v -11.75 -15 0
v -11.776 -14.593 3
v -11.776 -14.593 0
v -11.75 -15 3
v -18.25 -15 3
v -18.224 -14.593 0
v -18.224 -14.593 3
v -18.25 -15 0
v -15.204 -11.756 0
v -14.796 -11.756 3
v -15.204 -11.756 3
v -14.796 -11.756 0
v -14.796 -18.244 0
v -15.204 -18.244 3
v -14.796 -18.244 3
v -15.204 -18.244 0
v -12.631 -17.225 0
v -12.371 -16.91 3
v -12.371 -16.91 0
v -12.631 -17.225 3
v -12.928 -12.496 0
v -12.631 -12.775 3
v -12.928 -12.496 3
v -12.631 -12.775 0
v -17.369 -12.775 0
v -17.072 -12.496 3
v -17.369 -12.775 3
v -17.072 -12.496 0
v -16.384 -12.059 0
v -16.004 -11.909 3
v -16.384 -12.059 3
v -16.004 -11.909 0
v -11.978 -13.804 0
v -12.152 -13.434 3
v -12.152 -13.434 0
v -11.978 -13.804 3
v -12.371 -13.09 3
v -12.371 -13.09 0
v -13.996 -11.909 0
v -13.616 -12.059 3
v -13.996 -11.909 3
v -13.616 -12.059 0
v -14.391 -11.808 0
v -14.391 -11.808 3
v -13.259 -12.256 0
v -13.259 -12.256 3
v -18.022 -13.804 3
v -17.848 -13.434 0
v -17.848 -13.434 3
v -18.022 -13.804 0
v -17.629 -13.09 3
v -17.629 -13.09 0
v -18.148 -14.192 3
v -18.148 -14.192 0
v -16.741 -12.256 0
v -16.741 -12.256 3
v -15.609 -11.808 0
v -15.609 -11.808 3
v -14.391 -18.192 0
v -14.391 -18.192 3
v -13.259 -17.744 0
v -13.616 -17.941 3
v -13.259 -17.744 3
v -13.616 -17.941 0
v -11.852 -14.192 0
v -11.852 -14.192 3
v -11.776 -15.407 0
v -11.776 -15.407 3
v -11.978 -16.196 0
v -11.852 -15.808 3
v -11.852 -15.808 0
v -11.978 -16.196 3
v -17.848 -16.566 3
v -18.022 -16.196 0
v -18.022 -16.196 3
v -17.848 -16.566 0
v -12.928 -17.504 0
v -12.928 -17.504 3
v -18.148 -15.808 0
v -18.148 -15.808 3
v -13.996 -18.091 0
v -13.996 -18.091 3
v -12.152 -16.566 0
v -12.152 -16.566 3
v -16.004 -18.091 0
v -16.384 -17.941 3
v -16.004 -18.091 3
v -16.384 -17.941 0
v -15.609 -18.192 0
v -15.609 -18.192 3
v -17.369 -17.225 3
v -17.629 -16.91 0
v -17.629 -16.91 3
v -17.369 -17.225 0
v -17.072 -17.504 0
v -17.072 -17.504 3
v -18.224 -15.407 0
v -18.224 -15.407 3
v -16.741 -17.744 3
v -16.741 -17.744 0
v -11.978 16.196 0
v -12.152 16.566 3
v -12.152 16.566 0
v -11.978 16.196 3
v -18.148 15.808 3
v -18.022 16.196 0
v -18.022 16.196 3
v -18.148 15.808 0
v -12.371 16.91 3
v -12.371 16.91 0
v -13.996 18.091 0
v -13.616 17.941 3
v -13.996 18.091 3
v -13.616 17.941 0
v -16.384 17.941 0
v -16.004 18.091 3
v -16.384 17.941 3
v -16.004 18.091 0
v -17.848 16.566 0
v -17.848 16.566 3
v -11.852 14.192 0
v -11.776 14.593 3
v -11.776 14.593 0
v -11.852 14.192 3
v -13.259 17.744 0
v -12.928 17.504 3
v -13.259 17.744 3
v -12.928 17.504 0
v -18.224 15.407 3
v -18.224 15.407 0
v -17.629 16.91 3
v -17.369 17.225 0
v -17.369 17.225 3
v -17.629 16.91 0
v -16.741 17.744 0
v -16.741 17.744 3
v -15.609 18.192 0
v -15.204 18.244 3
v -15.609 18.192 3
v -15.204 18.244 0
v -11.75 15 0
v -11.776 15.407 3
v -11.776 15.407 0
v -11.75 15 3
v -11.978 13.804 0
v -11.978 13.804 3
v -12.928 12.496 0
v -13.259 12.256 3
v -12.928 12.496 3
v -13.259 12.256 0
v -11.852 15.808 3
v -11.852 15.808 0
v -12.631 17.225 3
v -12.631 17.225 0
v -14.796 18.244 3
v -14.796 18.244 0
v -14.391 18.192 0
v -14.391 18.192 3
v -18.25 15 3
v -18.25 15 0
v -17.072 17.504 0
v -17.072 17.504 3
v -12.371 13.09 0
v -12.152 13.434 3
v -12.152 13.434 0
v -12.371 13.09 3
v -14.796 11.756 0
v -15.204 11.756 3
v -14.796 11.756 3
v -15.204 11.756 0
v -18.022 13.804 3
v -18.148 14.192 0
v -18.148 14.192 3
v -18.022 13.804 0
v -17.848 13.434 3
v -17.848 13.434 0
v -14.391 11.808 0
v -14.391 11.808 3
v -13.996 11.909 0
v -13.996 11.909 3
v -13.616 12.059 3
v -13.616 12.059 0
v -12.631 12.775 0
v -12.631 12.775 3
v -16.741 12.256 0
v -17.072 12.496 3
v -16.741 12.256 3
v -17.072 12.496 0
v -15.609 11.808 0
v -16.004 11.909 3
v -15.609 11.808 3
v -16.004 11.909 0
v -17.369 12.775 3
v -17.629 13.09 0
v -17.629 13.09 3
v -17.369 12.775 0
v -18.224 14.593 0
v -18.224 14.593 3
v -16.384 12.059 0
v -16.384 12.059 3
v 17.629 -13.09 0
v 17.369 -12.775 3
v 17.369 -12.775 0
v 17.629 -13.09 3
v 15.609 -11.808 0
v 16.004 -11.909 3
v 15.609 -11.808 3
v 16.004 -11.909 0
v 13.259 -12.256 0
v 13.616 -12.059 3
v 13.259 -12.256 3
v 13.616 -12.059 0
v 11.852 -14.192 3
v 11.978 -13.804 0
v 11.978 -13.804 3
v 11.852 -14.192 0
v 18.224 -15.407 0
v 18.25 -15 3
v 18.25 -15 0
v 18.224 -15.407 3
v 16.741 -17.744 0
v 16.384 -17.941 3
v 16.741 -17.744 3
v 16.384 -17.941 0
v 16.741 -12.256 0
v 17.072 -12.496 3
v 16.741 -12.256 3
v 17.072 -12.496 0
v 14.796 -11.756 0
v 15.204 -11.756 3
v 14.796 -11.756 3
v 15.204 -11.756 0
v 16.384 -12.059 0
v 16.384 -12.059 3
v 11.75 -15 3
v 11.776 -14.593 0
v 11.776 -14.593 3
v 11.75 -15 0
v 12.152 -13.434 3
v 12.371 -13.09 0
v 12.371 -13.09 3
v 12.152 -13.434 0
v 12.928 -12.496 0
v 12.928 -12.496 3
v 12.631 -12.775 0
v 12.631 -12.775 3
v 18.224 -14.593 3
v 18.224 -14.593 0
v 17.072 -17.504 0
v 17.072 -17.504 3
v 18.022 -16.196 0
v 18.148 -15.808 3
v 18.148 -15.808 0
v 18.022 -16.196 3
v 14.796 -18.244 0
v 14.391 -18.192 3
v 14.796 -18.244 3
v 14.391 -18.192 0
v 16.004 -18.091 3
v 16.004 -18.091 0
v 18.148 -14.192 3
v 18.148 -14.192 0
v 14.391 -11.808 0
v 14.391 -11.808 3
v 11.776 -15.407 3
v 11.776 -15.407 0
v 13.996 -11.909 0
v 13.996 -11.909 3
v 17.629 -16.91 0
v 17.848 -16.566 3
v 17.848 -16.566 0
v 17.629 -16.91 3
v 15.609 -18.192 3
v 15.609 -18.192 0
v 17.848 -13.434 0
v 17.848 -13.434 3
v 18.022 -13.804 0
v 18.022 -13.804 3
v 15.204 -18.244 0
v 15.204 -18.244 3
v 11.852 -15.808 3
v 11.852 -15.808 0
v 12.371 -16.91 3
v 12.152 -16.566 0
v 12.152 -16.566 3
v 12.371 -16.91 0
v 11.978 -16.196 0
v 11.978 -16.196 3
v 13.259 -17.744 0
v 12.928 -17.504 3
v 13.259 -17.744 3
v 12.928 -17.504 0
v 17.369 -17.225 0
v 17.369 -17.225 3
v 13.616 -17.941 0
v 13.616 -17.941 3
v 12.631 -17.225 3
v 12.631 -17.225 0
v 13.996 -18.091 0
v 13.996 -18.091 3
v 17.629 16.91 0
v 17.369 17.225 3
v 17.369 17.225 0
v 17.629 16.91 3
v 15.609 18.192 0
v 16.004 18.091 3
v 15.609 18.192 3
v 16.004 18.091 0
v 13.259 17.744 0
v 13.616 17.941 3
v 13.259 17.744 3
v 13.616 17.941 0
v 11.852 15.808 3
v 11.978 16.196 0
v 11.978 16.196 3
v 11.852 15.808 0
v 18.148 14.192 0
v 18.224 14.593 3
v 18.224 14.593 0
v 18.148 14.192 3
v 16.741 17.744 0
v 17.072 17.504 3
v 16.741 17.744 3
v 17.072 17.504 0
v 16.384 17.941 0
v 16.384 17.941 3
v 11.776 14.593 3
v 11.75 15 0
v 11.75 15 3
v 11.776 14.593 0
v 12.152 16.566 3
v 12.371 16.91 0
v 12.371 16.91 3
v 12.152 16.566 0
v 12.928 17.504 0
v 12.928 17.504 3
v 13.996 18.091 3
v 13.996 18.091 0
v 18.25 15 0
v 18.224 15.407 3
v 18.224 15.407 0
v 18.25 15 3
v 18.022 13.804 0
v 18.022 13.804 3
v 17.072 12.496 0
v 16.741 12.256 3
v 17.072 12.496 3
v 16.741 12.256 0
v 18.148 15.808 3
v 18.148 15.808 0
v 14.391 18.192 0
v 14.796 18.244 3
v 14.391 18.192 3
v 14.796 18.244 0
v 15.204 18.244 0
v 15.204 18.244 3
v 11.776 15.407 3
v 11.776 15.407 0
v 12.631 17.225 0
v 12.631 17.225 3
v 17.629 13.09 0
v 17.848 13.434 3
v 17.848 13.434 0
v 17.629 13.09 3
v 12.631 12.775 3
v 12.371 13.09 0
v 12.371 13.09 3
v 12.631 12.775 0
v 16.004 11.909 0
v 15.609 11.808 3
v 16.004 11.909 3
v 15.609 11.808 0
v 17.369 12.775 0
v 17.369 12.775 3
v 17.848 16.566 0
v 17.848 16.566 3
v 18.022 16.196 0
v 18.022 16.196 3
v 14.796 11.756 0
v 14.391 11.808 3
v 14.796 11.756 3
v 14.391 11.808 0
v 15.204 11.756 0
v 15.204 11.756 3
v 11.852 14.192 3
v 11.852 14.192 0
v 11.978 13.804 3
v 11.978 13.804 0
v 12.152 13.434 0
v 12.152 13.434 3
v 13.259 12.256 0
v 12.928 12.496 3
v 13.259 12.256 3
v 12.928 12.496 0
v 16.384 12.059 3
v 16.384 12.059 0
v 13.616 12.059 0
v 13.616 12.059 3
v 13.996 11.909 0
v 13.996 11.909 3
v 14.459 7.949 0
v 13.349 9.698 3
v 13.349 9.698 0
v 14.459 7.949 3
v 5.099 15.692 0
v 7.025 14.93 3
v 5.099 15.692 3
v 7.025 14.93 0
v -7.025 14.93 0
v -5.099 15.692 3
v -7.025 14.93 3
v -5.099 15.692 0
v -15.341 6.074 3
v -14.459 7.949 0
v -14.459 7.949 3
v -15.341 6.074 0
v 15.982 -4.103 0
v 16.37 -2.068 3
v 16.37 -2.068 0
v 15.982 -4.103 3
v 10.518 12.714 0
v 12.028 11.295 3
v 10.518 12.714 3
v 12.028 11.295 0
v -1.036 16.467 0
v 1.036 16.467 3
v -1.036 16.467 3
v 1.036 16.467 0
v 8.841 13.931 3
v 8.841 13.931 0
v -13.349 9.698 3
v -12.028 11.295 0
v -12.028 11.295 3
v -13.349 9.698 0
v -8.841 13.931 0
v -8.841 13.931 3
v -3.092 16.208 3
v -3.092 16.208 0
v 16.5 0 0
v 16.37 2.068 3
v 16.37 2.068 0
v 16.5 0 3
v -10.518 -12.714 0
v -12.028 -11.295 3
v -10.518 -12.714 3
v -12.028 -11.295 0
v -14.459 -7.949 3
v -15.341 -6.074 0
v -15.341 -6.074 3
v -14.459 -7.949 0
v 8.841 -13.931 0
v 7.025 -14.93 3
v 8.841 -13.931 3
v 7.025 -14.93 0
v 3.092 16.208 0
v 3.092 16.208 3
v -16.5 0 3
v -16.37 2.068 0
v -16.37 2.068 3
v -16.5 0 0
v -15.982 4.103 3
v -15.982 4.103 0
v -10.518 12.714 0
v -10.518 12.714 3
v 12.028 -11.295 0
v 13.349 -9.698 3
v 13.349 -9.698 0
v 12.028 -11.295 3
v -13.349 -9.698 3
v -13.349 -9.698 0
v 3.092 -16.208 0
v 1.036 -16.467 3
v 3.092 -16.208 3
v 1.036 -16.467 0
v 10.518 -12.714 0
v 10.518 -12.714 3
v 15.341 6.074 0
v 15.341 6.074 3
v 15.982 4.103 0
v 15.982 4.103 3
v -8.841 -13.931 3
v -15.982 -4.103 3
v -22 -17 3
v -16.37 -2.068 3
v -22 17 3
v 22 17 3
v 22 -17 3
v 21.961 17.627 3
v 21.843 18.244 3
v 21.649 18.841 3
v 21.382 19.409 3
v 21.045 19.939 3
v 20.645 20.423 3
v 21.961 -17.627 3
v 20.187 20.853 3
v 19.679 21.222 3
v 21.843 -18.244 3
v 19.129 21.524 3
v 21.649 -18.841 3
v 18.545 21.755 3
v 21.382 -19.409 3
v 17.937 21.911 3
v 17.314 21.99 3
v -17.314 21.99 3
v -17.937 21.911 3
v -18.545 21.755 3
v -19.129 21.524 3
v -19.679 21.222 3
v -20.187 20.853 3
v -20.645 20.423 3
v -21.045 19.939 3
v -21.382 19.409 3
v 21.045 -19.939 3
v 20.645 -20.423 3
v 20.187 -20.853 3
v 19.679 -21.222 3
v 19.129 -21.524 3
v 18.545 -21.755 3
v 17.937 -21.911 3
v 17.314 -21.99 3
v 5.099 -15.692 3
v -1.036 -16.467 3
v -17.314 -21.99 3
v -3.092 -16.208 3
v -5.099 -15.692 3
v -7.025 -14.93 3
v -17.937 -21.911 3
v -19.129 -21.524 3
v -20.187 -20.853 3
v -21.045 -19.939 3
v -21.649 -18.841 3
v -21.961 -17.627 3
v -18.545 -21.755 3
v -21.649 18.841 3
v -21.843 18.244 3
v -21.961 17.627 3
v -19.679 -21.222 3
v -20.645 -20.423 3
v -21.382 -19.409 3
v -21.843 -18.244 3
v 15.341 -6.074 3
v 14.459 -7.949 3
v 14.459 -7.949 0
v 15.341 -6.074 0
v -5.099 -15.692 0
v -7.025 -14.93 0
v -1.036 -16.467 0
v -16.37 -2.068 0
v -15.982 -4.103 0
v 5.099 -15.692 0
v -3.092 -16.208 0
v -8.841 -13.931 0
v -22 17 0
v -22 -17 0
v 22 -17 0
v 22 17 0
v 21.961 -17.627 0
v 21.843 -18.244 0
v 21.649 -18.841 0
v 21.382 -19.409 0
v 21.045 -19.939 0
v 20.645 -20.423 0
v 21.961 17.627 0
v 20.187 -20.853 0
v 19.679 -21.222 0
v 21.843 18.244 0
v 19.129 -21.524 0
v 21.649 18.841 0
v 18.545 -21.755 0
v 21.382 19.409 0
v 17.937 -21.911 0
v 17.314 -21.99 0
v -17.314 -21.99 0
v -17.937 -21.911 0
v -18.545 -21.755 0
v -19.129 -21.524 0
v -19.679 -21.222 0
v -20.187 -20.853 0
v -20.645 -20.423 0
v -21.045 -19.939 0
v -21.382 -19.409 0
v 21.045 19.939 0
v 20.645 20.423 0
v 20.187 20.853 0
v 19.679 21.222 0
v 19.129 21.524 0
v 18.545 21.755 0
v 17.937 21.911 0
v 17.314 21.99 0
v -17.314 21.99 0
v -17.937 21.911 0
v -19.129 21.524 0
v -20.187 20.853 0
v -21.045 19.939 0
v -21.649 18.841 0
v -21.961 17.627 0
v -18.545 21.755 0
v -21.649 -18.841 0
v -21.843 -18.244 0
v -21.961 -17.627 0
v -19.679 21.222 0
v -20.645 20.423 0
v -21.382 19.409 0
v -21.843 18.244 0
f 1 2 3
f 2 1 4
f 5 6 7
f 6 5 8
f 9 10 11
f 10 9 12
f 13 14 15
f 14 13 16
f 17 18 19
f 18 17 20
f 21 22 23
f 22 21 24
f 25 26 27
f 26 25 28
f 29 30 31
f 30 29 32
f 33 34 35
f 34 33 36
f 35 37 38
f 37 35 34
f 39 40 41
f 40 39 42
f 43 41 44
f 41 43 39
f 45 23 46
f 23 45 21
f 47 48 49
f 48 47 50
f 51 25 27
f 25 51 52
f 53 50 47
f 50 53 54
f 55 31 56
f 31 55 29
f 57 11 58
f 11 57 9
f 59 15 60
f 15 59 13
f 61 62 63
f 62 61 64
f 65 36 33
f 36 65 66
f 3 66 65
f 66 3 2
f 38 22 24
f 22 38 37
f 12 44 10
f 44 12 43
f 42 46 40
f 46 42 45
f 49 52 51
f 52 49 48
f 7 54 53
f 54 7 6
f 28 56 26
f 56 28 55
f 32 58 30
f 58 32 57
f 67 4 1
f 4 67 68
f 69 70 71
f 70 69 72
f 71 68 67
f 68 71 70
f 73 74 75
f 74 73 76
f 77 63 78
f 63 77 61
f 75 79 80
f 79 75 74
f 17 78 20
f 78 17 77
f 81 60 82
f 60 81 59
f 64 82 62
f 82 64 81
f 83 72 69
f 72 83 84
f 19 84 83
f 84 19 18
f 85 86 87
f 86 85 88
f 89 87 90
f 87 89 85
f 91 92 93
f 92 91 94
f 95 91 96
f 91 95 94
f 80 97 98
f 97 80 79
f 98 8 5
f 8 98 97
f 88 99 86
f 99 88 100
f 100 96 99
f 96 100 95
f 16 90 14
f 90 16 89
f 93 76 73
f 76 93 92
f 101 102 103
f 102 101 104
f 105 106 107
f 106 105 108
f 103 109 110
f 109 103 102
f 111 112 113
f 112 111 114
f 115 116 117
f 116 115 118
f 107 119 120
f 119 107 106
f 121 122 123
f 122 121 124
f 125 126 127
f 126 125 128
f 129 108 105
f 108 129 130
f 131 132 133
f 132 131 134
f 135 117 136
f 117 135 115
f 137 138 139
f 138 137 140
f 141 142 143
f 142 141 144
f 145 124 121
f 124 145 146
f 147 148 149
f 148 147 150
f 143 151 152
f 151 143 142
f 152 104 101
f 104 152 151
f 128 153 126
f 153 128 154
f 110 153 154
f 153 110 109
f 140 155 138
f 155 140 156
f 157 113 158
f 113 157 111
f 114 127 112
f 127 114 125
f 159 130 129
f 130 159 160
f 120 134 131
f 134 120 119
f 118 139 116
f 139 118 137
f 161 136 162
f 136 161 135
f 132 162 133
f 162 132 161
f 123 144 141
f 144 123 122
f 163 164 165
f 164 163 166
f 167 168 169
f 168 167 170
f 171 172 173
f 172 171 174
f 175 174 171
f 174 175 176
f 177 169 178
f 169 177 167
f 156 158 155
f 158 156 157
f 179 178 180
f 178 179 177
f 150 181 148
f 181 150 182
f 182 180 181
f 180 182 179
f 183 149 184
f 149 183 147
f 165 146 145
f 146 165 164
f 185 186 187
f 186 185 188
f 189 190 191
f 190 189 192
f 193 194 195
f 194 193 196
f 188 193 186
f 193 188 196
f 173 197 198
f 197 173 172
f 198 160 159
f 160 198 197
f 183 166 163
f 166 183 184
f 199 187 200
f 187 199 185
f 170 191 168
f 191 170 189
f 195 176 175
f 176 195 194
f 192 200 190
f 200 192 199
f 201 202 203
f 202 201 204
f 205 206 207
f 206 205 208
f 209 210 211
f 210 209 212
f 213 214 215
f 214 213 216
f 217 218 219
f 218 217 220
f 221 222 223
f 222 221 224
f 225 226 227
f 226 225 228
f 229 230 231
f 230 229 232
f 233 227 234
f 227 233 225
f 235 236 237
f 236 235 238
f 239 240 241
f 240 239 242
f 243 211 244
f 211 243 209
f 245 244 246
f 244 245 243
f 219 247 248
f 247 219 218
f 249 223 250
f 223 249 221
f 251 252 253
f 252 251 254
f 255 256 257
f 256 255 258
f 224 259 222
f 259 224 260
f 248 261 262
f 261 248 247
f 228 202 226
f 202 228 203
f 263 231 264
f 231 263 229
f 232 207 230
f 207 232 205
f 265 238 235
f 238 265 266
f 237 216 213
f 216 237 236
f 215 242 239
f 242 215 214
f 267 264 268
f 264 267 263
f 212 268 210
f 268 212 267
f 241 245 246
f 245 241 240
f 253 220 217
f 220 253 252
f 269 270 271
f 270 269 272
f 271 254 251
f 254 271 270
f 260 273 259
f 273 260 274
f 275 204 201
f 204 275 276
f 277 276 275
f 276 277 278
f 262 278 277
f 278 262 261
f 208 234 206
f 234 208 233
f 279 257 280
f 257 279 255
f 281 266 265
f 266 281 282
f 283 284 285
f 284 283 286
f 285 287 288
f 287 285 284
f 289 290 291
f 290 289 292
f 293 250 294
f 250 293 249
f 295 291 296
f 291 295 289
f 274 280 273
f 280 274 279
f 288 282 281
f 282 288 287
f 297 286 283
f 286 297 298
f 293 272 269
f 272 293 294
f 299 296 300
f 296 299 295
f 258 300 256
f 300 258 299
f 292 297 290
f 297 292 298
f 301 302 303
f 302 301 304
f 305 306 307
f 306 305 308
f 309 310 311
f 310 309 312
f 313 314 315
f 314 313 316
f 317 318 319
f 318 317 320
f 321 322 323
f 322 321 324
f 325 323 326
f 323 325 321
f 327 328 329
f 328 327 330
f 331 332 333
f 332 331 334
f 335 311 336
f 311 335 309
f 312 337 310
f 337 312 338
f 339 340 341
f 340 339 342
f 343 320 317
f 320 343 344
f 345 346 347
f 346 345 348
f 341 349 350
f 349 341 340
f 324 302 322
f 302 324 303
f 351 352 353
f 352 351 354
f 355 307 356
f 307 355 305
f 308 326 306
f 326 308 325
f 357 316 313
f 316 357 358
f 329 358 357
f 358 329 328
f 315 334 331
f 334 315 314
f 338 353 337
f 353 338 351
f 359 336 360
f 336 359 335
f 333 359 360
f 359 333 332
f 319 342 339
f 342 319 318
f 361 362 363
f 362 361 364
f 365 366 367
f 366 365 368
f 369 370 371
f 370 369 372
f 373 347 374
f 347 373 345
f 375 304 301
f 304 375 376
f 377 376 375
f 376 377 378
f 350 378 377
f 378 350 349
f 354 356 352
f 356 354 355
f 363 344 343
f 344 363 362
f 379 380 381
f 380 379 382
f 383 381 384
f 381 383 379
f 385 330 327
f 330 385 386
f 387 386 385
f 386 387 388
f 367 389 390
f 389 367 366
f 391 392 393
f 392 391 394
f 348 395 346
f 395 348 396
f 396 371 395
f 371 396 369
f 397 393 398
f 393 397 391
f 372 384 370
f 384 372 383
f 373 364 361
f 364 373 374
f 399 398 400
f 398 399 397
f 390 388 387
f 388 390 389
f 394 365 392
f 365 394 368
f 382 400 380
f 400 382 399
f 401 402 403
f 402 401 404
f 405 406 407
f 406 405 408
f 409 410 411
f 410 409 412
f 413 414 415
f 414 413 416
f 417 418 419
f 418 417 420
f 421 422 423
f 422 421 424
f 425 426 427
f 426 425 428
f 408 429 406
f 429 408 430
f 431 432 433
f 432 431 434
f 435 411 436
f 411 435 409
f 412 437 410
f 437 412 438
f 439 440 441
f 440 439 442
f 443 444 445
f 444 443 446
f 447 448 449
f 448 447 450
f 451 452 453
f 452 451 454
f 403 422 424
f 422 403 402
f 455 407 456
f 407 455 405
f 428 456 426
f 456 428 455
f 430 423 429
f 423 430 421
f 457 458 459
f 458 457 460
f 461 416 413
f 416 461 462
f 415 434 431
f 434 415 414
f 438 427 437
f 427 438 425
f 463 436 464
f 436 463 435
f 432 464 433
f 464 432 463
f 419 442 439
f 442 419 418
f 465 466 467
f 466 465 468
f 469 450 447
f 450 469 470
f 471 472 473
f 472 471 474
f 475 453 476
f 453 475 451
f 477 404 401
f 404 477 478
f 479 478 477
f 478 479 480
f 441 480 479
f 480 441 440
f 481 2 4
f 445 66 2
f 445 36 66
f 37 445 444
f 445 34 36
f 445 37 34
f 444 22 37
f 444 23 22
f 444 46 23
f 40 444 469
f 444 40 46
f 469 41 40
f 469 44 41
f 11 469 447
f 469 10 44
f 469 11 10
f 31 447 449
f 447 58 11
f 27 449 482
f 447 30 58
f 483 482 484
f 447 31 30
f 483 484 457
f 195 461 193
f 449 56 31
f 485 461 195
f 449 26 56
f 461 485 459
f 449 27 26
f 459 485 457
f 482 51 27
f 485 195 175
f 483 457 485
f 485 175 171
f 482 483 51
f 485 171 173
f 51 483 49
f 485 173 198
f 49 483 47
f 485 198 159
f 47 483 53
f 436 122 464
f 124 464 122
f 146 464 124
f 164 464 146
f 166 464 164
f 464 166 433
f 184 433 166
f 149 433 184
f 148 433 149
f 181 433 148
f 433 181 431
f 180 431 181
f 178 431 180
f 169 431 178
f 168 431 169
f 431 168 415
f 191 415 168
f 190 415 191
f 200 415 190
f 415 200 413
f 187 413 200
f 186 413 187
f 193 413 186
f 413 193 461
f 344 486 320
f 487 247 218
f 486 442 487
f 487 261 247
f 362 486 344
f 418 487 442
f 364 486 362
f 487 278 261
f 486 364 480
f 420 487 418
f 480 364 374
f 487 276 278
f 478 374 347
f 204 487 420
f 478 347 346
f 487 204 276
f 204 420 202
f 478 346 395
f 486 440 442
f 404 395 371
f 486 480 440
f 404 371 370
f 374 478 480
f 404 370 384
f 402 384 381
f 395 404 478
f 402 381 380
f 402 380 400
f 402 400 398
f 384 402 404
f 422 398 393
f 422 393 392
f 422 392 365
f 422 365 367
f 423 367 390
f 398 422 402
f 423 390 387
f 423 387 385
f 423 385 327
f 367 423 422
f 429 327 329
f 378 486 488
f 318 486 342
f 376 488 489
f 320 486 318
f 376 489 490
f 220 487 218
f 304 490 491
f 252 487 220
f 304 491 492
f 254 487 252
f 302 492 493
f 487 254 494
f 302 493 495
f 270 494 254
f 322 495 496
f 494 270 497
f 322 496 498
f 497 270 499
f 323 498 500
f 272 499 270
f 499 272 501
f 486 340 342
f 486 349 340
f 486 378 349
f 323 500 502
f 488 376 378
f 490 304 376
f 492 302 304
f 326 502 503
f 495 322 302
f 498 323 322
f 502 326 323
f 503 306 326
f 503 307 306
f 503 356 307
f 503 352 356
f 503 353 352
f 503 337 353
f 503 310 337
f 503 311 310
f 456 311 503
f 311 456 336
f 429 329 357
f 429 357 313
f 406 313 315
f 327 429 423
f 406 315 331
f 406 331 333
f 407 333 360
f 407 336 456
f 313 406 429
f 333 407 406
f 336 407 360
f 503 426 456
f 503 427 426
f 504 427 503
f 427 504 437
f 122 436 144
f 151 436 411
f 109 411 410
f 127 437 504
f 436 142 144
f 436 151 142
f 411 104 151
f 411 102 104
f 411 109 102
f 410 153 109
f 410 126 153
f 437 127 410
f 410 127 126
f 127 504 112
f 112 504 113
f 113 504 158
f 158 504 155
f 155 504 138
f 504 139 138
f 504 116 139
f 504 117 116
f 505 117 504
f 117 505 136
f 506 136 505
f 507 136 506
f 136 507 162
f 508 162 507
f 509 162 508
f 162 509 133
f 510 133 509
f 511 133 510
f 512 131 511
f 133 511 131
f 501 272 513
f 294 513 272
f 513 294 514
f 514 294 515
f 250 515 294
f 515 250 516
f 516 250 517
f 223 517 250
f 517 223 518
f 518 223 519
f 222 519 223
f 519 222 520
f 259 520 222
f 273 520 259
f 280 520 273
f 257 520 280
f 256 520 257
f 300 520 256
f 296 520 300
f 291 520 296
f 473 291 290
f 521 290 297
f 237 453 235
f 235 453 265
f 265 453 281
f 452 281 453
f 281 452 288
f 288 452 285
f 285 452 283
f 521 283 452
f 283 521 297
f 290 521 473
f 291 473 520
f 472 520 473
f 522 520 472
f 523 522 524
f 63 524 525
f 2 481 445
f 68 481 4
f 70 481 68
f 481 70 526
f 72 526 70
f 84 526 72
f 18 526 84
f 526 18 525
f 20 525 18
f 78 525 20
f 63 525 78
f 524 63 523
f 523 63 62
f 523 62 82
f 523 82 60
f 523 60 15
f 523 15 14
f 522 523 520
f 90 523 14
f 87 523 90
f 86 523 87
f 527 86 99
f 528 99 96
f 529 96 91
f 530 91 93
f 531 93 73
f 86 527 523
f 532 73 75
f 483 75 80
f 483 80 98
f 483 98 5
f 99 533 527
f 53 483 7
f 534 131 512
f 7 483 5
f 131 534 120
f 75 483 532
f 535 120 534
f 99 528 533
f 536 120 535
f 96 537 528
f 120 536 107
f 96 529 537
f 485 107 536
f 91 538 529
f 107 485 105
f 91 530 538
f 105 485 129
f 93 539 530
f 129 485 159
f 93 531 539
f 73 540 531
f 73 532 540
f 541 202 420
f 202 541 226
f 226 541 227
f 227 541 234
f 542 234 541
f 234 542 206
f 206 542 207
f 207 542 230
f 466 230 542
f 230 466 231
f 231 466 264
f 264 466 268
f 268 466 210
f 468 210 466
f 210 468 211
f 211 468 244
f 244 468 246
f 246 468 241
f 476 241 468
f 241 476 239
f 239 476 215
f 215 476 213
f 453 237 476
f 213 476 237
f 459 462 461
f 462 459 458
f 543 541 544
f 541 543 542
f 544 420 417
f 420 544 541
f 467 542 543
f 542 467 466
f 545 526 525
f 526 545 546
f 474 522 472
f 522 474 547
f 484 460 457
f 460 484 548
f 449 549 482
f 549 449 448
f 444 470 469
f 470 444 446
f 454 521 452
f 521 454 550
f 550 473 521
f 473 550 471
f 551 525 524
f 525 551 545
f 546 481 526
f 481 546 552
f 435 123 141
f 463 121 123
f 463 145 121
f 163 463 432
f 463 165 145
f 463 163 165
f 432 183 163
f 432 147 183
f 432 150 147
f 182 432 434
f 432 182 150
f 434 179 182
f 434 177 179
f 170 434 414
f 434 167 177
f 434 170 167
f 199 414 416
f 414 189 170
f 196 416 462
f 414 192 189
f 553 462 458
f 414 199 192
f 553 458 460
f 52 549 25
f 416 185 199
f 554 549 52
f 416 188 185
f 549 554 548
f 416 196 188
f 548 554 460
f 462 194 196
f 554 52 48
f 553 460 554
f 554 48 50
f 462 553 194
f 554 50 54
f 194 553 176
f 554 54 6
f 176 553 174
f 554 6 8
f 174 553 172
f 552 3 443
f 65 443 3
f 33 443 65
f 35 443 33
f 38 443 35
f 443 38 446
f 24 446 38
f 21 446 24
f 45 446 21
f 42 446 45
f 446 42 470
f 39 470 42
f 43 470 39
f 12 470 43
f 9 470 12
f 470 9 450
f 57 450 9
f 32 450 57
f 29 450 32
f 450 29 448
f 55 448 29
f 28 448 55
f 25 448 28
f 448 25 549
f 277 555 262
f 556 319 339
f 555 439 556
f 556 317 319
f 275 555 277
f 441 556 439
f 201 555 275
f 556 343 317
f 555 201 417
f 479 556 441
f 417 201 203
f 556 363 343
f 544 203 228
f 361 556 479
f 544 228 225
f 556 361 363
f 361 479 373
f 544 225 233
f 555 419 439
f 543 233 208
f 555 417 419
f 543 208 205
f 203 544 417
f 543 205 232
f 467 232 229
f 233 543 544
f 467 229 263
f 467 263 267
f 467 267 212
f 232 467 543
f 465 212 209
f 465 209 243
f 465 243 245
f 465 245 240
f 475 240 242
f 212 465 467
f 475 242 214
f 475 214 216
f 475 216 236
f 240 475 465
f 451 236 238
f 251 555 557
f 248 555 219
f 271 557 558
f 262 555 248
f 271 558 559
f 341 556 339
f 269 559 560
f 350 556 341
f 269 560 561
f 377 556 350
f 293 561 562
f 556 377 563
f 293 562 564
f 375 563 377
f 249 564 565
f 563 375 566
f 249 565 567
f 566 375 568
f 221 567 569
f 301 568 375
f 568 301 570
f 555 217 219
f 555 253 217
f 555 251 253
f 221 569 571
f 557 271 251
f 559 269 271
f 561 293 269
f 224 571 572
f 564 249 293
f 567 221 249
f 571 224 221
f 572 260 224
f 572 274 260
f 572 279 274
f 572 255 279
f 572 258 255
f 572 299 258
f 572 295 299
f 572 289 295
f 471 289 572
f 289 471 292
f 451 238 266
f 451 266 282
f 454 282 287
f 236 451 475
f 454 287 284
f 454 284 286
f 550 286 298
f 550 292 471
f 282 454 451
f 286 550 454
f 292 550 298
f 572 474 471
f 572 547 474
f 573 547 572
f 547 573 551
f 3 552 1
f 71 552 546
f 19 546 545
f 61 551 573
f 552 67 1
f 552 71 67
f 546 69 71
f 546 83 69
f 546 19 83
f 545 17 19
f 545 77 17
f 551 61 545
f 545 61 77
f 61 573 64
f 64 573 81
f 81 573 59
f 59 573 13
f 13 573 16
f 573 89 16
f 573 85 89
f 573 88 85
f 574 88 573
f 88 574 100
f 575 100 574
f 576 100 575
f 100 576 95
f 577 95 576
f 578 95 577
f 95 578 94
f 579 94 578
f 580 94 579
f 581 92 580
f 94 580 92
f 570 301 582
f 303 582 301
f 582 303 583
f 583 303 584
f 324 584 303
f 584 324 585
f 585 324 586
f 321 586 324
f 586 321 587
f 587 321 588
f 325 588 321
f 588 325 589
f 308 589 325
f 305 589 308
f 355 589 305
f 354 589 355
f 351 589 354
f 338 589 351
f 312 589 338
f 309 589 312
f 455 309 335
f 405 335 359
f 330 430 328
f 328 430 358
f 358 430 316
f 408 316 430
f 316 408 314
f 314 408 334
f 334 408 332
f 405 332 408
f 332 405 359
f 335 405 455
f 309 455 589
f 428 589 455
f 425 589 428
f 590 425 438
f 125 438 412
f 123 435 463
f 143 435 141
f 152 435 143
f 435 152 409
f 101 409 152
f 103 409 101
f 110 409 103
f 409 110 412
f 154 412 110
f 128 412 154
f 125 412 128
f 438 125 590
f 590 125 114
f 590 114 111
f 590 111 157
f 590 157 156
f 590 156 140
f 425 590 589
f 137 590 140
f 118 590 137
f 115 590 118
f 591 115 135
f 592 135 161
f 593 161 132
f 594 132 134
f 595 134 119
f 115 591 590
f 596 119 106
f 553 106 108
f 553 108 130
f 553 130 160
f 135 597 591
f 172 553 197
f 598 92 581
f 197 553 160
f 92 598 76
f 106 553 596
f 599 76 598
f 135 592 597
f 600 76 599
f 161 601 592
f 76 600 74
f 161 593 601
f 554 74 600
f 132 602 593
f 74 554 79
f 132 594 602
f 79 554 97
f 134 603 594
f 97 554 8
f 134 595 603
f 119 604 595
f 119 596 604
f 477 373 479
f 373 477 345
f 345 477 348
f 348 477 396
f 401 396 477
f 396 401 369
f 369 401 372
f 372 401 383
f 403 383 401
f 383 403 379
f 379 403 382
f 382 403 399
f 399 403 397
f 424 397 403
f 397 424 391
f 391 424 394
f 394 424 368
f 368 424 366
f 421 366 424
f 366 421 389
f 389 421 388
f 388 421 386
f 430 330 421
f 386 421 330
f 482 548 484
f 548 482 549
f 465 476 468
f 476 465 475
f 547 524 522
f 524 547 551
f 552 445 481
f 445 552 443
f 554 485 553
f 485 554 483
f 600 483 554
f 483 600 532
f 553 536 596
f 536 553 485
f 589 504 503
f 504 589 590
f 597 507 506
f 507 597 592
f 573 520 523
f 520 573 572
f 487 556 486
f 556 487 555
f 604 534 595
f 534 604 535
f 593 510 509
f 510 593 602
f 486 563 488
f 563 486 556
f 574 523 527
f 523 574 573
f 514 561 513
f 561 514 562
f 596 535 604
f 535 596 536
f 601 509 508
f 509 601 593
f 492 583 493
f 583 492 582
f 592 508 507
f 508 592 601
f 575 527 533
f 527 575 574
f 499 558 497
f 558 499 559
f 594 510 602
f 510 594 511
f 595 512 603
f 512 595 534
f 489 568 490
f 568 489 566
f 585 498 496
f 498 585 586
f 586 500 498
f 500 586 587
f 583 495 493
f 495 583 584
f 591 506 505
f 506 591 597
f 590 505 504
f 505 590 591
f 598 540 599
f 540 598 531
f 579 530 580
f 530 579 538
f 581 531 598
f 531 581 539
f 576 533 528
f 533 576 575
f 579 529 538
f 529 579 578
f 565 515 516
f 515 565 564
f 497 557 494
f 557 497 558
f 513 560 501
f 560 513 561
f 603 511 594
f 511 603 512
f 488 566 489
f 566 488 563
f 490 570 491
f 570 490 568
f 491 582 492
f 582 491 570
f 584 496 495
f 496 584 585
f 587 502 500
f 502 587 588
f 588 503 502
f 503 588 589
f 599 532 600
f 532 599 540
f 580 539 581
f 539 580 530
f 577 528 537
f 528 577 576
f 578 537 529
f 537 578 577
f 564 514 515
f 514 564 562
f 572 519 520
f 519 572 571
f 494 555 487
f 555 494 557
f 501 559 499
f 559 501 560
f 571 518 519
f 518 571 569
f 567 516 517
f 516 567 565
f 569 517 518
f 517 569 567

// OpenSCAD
$fn = 50;


difference() {
	union() {
		hull() {
			translate(v = [-17.0000000000, 17.0000000000, 0]) {
				cylinder(h = 3, r = 5);
			}
			translate(v = [17.0000000000, 17.0000000000, 0]) {
				cylinder(h = 3, r = 5);
			}
			translate(v = [-17.0000000000, -17.0000000000, 0]) {
				cylinder(h = 3, r = 5);
			}
			translate(v = [17.0000000000, -17.0000000000, 0]) {
				cylinder(h = 3, r = 5);
			}
		}
	}
	union() {
		#translate(v = [-15.0000000000, -15.0000000000, -100.0000000000]) {
			cylinder(h = 200, r = 3.2500000000);
		}
		#translate(v = [-15.0000000000, 15.0000000000, -100.0000000000]) {
			cylinder(h = 200, r = 3.2500000000);
		}
		#translate(v = [15.0000000000, -15.0000000000, -100.0000000000]) {
			cylinder(h = 200, r = 3.2500000000);
		}
		#translate(v = [15.0000000000, 15.0000000000, -100.0000000000]) {
			cylinder(h = 200, r = 3.2500000000);
		}
		#cylinder(h = 3, r = 16.5000000000);
	}
}
